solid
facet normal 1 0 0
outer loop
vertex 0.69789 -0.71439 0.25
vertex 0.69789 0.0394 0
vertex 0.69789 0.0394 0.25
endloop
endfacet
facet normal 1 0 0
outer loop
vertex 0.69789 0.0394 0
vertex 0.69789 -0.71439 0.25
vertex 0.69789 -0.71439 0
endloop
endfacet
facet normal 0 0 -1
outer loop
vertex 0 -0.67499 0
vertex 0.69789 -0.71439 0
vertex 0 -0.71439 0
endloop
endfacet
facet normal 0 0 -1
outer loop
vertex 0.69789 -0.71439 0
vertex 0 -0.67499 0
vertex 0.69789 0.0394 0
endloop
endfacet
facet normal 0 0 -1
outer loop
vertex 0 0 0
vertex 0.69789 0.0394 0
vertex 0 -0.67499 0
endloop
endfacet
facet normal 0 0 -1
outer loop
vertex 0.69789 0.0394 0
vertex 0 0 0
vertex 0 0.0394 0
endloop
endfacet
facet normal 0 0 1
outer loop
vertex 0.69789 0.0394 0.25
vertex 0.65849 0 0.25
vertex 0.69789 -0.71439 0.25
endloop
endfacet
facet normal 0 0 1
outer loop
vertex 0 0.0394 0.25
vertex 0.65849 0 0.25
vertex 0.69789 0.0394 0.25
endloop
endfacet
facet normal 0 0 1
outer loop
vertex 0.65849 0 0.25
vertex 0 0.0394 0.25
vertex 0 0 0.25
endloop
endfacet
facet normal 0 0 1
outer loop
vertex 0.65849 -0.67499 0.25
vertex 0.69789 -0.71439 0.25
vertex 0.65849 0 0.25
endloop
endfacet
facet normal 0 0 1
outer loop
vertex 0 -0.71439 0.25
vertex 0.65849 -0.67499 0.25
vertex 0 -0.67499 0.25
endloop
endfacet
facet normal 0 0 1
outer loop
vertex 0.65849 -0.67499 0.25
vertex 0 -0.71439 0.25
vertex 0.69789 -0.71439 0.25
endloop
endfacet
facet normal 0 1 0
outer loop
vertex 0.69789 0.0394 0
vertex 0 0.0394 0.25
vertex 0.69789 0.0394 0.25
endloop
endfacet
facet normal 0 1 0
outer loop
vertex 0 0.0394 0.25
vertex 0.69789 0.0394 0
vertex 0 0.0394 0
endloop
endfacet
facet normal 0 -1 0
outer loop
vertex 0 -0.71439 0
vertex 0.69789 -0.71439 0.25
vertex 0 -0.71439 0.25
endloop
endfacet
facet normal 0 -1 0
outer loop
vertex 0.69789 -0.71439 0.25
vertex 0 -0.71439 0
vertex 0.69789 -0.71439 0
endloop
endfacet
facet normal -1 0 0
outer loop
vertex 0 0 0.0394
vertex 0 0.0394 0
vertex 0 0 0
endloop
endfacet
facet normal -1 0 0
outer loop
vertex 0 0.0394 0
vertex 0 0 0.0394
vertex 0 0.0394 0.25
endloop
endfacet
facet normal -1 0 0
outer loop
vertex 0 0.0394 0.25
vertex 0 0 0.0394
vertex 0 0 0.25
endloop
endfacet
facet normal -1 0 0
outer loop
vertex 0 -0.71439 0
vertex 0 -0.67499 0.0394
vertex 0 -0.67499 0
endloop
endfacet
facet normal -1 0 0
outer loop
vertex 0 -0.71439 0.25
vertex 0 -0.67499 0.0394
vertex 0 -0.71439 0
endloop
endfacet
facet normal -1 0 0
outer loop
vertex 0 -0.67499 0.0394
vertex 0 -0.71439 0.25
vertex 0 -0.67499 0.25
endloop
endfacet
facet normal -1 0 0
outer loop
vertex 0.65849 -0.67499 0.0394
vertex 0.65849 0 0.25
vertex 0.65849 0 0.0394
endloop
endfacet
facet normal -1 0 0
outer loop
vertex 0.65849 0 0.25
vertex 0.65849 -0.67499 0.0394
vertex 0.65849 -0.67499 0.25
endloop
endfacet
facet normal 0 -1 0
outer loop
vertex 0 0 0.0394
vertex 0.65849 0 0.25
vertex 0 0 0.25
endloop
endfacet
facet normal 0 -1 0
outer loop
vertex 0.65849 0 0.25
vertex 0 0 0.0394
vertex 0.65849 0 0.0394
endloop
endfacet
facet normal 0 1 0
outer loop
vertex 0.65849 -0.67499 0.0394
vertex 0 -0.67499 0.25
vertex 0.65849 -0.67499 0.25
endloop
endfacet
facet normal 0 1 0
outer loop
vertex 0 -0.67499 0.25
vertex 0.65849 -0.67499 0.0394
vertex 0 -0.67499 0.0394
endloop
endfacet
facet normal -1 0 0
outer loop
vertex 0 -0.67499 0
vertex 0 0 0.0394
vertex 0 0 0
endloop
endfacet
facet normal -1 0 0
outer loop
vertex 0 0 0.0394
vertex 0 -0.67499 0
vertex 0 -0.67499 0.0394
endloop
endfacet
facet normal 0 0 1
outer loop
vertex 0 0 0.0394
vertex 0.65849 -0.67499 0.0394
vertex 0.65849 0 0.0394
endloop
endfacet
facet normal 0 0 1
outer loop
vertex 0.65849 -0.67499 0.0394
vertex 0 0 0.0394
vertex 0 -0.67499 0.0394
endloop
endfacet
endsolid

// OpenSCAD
brdLengthIN = 0.6250; // in
brdWidthIN = 0.6085; // [in]
holeDiaIN = 0.12; // actual 0.13 [in]

holeSpacingIN = 0.3890; // in
wallThickness = 0.0394; // [in]

union() {
	translate([ 0, 0, 0]) linear_extrude(height = wallThickness, center = false, convexity = 10, twist = 0, slices = 20, scale = 1.0) { polygon(points = [[0,0],[brdWidthIN+0.05,0],[brdWidthIN+0.05,-(brdLengthIN+0.05)],[0,-(brdLengthIN+0.05)]], paths = undef, convexity = 1);
					}
	difference() {
		translate([ 0, 0, 0]) linear_extrude(height = 0.25, center = false, convexity = 10, twist = 0, slices = 20, scale = 1.0) { polygon(points = [[0-wallThickness,0+wallThickness],[brdWidthIN+0.05+wallThickness,0+wallThickness],[brdWidthIN+0.05+wallThickness,-(brdLengthIN+0.05+wallThickness)],[0-wallThickness,-(brdLengthIN+0.05+wallThickness)]], paths = undef, convexity = 1);
						}
						
		translate([ 0, 0, 0]) linear_extrude(height = 0.25, center = false, convexity = 10, twist = 0, slices = 20, scale = 1.0) { polygon(points = [[0,0],[brdWidthIN+0.05,0],[brdWidthIN+0.05,-(brdLengthIN+0.05)],[0,-(brdLengthIN+0.05)]], paths = undef, convexity = 1);
						}
	
		translate([ 0, 0, 0]) linear_extrude(height = 0.25, center = false, convexity = 10, twist = 0, slices = 20, scale = 1.0) { polygon(points = [[-wallThickness,wallThickness],[0,wallThickness],[0,-(brdLengthIN+0.1)],[-wallThickness,-(brdLengthIN+0.1)]], paths = undef, convexity = 1);
						}
	}

}
